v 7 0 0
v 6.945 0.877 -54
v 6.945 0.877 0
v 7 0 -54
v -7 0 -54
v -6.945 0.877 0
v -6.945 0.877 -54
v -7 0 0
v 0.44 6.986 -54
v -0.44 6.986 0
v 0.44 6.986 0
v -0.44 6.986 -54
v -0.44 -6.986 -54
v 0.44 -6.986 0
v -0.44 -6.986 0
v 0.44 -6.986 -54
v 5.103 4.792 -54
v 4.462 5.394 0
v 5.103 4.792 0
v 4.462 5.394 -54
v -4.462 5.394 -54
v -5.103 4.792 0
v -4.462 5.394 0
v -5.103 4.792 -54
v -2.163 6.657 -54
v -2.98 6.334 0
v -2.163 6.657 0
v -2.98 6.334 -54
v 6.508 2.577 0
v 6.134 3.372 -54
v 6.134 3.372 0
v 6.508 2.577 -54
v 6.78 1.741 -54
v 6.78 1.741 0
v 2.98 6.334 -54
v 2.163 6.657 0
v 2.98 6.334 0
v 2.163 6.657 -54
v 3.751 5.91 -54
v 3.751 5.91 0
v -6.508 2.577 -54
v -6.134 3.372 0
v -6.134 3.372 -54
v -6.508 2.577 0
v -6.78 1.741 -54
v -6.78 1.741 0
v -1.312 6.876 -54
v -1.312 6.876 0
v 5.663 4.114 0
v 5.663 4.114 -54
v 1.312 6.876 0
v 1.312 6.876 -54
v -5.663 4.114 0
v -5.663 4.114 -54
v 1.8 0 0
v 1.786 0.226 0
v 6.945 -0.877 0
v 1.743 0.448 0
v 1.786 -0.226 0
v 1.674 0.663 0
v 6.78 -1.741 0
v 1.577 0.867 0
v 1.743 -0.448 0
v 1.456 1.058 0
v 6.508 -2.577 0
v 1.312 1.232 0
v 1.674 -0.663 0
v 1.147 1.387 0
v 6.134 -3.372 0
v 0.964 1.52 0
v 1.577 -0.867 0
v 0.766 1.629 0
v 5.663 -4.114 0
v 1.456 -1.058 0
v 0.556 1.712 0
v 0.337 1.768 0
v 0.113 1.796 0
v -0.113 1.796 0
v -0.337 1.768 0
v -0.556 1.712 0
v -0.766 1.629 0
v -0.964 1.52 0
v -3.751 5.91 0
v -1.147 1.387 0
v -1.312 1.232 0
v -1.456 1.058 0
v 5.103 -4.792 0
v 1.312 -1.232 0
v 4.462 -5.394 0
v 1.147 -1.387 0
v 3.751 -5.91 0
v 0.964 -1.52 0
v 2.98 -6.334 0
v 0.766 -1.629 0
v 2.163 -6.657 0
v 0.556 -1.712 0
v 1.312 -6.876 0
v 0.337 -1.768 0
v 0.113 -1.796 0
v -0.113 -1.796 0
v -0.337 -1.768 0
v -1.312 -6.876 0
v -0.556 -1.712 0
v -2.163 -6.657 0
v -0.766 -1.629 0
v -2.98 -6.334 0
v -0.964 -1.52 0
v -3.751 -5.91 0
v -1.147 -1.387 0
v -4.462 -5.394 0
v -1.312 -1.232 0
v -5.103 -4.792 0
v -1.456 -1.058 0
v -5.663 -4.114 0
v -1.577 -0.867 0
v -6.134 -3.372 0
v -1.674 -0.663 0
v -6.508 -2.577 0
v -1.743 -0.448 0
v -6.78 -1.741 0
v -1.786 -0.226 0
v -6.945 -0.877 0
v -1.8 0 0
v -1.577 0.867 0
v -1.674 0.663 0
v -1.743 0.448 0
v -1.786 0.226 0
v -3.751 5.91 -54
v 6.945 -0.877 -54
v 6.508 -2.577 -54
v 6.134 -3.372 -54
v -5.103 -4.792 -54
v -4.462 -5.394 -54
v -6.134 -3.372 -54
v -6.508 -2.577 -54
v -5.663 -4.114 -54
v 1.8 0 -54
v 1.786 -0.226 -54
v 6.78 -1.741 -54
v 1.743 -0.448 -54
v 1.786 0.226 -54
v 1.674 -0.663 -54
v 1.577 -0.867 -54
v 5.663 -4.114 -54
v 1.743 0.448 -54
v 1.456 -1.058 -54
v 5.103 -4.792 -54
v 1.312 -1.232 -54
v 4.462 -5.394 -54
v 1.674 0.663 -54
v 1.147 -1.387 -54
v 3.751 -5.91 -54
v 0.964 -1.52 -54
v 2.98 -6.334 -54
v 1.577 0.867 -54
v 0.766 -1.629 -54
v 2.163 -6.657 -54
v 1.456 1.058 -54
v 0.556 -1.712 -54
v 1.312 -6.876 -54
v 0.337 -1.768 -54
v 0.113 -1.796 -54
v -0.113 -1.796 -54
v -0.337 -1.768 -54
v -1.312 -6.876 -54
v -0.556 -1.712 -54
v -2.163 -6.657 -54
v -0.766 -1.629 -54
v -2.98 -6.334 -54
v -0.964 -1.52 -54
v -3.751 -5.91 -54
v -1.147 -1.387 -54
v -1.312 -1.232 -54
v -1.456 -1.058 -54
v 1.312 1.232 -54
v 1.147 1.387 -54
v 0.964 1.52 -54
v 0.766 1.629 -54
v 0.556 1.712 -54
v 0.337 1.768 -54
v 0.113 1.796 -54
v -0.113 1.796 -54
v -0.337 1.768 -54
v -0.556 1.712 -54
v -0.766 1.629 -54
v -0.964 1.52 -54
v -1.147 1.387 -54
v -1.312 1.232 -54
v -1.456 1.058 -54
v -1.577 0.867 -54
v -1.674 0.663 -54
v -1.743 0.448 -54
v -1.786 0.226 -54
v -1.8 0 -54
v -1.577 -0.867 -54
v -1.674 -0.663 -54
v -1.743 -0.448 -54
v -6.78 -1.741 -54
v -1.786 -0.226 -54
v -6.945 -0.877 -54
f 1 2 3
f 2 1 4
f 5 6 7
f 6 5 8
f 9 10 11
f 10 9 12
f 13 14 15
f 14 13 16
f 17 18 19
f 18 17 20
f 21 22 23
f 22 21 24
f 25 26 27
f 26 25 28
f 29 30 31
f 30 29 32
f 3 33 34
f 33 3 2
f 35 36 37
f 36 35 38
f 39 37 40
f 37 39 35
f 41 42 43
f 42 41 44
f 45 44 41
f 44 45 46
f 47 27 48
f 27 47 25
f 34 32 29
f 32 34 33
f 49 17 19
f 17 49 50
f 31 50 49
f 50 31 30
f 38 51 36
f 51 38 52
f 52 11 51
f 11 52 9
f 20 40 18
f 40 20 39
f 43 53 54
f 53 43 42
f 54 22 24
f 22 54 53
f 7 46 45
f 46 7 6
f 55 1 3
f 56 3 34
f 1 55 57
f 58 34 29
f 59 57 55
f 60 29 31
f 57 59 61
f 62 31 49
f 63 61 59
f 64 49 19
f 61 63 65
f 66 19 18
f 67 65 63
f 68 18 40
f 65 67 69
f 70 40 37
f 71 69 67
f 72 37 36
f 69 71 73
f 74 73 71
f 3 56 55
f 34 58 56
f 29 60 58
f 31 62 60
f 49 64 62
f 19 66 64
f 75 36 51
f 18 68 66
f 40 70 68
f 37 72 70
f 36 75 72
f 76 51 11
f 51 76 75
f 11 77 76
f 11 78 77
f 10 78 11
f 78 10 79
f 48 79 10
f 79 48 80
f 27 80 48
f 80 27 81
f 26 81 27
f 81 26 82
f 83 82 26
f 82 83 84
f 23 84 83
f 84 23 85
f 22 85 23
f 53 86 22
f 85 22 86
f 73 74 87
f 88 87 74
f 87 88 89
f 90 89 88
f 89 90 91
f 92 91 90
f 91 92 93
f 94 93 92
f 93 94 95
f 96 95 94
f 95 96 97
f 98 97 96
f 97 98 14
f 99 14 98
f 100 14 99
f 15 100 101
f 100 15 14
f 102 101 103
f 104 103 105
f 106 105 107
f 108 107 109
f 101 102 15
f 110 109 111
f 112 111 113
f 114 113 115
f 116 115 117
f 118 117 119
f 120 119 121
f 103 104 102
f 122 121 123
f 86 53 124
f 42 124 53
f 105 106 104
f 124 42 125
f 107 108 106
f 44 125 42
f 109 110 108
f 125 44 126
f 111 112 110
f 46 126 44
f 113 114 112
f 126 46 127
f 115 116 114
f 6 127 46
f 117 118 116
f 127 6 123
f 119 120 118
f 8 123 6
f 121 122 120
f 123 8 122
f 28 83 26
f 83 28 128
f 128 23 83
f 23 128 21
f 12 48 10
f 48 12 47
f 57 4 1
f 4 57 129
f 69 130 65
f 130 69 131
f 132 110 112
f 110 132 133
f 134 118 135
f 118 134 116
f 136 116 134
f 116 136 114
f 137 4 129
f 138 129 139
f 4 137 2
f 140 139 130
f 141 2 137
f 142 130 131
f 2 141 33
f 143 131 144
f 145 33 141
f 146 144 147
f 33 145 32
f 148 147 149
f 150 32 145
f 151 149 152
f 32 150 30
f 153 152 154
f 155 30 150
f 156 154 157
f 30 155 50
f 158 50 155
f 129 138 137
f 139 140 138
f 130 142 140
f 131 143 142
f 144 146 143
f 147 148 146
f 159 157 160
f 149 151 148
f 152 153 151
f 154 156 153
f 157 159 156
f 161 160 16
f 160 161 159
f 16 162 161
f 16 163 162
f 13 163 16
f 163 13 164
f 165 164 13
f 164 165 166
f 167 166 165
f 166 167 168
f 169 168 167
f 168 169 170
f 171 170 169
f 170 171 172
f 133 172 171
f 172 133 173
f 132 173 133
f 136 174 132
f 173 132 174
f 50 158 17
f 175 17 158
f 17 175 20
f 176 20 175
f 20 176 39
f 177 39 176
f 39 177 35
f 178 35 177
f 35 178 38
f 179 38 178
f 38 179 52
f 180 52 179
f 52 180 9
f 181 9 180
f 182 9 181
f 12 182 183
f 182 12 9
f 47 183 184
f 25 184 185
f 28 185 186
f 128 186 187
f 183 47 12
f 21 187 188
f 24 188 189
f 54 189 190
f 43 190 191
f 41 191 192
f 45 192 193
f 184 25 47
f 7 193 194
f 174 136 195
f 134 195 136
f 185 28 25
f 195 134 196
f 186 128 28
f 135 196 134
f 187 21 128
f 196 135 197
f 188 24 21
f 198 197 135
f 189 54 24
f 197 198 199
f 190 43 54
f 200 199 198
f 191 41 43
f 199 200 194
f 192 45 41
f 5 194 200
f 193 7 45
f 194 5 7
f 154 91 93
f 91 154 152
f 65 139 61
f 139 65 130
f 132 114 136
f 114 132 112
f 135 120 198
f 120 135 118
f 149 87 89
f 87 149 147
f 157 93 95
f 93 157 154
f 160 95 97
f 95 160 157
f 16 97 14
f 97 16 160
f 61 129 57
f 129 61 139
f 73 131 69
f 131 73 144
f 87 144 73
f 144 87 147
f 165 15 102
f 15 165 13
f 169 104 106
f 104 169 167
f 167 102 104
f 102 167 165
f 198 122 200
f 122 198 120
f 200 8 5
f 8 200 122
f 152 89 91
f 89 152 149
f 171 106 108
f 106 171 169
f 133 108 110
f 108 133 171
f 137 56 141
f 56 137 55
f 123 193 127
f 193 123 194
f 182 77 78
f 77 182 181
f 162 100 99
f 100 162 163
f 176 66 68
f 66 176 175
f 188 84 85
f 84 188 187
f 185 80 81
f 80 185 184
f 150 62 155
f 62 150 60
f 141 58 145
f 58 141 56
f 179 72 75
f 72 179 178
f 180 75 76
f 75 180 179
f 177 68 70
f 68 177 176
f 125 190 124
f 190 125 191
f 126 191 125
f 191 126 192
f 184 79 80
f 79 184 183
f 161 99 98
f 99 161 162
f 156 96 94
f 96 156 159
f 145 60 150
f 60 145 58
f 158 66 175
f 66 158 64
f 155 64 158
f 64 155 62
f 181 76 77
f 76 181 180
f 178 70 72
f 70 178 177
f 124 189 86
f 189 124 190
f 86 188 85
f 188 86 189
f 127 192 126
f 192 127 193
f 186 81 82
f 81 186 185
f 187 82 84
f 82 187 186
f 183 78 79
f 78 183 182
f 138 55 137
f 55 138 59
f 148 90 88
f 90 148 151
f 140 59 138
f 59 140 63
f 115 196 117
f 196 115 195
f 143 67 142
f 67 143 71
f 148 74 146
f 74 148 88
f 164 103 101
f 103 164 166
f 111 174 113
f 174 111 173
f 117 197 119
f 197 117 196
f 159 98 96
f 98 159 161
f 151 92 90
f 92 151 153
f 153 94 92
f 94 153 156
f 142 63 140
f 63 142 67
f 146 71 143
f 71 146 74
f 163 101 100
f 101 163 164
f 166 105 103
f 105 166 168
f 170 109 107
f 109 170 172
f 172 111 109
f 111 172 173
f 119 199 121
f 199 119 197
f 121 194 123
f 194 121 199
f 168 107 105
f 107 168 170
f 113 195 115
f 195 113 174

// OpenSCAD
$fn = 50;


difference() {
	union() {
		translate(v = [0, 0, -54.0000000000]) {
			cylinder(h = 54, r = 7.0000000000);
		}
		cylinder(h = 0, r = 13.0000000000);
	}
	union() {
		#translate(v = [0, 0, -54]) {
			cylinder(h = 54, r = 1.8000000000);
		}
	}
}
